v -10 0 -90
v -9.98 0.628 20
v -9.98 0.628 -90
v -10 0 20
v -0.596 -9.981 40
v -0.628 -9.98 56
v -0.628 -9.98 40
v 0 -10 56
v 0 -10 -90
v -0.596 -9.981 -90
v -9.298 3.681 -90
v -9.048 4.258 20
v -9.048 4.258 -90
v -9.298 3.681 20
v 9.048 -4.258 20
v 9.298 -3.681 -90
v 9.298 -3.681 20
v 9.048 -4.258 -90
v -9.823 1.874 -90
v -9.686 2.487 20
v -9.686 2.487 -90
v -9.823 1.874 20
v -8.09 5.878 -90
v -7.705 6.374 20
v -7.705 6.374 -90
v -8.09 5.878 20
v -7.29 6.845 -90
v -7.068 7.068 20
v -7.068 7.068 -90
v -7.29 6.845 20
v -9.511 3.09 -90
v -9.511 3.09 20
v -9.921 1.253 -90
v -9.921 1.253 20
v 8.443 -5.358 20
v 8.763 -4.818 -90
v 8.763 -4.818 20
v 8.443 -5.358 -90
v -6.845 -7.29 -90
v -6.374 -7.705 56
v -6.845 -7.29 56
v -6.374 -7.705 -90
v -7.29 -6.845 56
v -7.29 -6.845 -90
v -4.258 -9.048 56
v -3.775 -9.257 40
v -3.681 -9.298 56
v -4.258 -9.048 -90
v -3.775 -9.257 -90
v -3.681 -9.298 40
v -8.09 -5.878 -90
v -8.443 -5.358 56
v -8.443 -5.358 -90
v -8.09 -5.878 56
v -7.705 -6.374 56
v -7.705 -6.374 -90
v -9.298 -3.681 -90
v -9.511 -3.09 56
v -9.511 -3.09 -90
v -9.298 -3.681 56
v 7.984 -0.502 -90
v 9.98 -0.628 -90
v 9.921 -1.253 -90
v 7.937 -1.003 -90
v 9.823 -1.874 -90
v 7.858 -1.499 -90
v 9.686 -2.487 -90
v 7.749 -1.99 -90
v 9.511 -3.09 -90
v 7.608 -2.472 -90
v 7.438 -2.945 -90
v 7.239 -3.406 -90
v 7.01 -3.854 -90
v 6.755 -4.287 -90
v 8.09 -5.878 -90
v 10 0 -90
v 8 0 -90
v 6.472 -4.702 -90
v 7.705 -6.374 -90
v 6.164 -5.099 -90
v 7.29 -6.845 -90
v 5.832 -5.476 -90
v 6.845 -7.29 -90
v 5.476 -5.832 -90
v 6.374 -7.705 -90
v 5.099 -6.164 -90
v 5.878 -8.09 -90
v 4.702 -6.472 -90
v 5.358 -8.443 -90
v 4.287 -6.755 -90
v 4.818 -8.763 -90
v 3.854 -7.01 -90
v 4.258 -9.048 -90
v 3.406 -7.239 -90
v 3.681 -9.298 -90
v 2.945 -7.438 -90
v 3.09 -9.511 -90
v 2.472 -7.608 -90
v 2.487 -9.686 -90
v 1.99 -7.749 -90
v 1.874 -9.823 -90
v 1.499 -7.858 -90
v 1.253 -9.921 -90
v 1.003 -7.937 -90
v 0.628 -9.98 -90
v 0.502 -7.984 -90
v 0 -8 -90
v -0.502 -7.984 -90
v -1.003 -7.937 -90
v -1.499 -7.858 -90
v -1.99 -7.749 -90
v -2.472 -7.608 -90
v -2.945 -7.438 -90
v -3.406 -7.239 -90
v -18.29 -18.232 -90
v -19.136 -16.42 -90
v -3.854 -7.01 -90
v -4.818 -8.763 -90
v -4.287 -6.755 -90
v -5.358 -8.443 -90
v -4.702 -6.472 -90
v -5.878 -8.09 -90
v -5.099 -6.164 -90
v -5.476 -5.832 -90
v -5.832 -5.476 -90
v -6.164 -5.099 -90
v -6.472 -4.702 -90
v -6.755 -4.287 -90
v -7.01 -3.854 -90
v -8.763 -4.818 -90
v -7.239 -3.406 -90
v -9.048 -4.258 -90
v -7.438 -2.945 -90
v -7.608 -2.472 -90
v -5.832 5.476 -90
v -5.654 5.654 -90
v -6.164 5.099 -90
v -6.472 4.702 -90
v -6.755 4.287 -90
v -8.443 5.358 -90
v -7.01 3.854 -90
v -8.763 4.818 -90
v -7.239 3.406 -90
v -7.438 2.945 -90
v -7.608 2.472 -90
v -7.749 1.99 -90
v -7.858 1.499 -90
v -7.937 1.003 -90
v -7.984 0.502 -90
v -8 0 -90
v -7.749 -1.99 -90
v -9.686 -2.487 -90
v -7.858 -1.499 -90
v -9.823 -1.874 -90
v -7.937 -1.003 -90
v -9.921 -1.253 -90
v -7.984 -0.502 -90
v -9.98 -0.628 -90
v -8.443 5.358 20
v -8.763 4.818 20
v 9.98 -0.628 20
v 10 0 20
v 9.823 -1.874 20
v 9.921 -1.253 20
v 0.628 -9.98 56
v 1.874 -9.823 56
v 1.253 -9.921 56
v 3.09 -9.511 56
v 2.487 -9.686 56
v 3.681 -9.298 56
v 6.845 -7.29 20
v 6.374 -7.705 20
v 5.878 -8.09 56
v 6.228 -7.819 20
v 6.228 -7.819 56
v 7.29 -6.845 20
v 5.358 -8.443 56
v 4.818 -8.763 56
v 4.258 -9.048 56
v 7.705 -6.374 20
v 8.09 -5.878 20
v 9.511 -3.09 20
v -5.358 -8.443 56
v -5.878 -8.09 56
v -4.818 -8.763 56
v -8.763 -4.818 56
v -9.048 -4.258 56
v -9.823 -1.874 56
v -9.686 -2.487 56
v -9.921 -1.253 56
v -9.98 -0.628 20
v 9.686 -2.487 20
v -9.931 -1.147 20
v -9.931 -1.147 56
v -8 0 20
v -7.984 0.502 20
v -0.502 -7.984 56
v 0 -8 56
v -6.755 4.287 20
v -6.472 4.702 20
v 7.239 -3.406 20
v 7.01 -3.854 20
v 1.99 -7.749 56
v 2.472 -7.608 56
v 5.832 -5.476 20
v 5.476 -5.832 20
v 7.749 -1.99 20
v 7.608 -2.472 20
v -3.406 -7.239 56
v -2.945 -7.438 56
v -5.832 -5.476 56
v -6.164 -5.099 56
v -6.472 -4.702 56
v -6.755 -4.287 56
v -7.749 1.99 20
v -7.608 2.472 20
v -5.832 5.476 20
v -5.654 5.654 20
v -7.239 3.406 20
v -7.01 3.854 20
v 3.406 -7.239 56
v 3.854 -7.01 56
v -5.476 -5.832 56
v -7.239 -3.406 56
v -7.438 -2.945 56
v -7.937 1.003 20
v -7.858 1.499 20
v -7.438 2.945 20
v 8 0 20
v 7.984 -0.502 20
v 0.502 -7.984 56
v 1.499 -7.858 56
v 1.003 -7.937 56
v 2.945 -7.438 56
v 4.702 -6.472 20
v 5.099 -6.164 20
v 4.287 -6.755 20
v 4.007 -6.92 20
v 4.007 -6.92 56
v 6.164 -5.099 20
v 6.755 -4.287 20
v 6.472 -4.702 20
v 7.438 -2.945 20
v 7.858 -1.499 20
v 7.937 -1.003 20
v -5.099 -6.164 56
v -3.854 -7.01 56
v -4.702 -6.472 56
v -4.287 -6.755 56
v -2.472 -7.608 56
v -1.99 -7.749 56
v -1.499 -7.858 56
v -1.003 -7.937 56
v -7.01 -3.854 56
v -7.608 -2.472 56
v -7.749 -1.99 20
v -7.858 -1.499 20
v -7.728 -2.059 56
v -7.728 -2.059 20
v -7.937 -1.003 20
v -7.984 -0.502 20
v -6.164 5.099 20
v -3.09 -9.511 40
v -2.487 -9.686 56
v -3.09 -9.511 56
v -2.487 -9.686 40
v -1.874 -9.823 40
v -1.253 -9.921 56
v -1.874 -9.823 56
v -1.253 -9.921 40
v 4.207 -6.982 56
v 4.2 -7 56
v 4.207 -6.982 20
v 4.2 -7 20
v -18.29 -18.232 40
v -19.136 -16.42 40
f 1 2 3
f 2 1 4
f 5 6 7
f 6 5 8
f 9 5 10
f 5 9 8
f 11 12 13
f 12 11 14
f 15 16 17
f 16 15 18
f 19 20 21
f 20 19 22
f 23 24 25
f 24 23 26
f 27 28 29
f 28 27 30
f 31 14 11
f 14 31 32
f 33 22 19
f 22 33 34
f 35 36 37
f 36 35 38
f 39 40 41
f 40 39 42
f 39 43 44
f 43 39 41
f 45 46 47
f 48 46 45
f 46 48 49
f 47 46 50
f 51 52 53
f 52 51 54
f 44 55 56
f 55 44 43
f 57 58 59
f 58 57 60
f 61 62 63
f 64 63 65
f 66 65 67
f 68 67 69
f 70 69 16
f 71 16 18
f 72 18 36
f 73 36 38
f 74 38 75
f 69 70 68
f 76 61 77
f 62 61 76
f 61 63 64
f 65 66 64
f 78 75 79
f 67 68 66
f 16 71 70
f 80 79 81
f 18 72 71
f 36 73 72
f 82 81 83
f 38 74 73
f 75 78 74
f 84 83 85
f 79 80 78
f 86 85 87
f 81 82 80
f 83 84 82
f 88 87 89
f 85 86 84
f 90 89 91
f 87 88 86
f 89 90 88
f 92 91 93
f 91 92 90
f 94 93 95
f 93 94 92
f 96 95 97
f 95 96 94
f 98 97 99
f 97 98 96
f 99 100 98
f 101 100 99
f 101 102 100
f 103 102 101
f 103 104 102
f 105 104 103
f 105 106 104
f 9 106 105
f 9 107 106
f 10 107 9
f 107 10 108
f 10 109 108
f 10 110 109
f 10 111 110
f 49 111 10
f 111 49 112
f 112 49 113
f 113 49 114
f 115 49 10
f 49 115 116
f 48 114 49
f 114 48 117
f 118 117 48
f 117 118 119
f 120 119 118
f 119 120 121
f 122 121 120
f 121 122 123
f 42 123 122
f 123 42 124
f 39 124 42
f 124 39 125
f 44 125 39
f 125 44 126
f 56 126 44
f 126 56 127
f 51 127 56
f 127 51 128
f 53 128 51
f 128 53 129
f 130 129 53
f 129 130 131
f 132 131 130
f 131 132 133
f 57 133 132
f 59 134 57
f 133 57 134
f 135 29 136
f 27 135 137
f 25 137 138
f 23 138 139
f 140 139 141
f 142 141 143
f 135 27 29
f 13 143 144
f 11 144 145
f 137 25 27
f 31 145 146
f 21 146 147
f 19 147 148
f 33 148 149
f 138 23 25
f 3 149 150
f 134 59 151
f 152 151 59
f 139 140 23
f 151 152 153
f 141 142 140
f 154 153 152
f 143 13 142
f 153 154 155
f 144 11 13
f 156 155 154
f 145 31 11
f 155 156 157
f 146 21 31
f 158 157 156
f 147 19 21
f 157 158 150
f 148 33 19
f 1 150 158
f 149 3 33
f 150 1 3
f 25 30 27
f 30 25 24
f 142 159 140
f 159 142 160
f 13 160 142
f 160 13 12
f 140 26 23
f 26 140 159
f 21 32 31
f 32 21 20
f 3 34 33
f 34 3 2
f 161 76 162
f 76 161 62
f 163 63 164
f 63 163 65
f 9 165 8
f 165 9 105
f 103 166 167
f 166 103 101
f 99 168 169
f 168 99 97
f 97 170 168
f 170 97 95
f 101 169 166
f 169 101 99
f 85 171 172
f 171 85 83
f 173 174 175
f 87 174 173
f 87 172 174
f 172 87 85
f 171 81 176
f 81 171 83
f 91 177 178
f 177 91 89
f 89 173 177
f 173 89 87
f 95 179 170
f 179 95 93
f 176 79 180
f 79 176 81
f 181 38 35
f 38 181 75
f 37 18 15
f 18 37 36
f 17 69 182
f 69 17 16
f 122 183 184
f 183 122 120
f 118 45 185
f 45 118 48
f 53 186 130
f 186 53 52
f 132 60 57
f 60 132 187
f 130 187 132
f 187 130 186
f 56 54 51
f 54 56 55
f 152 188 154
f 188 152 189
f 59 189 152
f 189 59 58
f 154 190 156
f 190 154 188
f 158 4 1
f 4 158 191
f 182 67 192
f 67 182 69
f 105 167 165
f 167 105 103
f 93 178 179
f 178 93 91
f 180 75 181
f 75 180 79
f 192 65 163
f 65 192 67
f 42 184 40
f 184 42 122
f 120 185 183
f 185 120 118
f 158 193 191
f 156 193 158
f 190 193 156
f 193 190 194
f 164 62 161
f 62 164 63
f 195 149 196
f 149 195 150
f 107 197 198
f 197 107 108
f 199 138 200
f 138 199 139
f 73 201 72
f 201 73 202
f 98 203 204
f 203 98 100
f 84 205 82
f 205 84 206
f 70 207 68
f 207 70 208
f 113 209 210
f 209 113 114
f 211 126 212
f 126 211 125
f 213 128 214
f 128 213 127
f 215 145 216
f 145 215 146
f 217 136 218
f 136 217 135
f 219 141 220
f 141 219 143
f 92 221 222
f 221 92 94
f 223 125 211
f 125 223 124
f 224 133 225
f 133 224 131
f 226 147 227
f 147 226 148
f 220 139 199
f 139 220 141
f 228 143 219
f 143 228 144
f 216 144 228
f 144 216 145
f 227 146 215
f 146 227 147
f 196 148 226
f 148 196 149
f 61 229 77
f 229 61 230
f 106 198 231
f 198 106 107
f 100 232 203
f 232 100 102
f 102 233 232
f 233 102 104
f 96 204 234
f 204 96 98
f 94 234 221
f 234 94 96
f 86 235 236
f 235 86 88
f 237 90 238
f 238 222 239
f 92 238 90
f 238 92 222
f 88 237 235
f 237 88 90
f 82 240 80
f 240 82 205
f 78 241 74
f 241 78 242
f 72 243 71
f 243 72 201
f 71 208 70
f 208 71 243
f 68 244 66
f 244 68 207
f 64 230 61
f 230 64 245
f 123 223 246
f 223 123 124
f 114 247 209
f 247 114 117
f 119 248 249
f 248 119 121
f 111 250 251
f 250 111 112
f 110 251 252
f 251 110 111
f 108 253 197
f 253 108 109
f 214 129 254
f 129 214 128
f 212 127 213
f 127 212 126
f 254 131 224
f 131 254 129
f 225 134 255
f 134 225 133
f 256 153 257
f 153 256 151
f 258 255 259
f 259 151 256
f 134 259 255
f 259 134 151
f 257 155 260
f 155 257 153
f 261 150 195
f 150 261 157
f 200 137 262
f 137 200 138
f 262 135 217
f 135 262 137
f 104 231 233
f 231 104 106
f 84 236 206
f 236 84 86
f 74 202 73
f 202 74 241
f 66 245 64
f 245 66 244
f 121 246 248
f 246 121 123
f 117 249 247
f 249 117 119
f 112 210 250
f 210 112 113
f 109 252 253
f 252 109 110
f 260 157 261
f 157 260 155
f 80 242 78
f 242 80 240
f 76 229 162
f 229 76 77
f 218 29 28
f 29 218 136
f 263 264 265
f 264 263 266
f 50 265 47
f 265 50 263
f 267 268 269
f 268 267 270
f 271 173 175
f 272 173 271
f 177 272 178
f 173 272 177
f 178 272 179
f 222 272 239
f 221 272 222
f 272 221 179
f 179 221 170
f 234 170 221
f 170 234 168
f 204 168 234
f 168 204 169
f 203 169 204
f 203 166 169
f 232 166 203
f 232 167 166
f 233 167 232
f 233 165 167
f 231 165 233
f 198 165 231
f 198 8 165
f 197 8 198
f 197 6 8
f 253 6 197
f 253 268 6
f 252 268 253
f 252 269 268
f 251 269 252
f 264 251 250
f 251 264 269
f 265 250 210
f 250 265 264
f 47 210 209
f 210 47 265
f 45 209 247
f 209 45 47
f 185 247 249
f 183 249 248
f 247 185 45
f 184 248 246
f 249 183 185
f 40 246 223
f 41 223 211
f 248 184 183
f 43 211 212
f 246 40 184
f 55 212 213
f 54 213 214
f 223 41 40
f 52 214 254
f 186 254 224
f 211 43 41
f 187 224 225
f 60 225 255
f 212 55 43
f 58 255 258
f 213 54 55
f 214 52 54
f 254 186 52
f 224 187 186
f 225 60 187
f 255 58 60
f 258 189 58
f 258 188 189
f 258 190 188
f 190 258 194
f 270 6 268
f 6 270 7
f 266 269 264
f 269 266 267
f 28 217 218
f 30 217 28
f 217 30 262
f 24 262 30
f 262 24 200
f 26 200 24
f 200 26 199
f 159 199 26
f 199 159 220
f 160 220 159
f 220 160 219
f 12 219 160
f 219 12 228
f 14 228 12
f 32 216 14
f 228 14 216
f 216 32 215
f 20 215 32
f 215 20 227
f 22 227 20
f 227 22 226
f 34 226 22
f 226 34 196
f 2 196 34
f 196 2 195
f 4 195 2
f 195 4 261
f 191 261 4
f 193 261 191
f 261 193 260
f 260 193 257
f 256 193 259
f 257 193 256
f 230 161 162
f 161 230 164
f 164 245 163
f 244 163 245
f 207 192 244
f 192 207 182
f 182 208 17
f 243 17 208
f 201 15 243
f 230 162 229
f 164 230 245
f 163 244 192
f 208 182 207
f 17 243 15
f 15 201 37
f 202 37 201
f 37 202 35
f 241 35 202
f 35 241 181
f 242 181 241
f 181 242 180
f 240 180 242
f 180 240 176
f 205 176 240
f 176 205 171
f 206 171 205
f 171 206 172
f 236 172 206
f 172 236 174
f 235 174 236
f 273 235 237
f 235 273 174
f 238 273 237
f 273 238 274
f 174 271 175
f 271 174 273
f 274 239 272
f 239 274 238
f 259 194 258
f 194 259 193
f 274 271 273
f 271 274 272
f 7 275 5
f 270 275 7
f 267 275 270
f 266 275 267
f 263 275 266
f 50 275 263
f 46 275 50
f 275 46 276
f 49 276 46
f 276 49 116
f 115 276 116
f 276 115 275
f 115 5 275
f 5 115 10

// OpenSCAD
union(){
    translate([0, 0, -90]) {
        difference() {
            cylinder(h = 100, d = 20, $fn = 100);

            cylinder(h = 100, d = 16, $fn = 100);
                
            cube([10, 10, 100]);
            rotate([0, 0, 45]) {
                cube([10, 10, 100]);
            }
        }
    }

    translate([0, 0, 10]) {
        difference() {
            cylinder(h = 46, d = 20, $fn = 100);
            cylinder(h = 46, d = 16, $fn = 100);
            
            cube([10, 10, 20]);
            rotate([0, 0, 45]) {
                cube([10, 10, 20]);
            }
            
            translate([6.2, -7.8, 10]){    
                rotate([0, 0, 67.5]) {
                    cube([17.4, 17.4, 46]);
                }
            }
            
            translate([9.2, -9.05, 10]){    
                rotate([0, 0, 67.5]) {
                    cube([17.4, 17.4, 46]);
                }
            }
            
            translate([4.2, -7, 10]){    
                rotate([0, 0, 67.5]) {
                    cube([17.4, 17.4, 46]);
                }
            }
        }
    }
    
    translate([-9.65, -13.1, -25]) {
        rotate([0, 0, 25]) {
            cube([20, 2, 130], center = true);
        }
    }
}
